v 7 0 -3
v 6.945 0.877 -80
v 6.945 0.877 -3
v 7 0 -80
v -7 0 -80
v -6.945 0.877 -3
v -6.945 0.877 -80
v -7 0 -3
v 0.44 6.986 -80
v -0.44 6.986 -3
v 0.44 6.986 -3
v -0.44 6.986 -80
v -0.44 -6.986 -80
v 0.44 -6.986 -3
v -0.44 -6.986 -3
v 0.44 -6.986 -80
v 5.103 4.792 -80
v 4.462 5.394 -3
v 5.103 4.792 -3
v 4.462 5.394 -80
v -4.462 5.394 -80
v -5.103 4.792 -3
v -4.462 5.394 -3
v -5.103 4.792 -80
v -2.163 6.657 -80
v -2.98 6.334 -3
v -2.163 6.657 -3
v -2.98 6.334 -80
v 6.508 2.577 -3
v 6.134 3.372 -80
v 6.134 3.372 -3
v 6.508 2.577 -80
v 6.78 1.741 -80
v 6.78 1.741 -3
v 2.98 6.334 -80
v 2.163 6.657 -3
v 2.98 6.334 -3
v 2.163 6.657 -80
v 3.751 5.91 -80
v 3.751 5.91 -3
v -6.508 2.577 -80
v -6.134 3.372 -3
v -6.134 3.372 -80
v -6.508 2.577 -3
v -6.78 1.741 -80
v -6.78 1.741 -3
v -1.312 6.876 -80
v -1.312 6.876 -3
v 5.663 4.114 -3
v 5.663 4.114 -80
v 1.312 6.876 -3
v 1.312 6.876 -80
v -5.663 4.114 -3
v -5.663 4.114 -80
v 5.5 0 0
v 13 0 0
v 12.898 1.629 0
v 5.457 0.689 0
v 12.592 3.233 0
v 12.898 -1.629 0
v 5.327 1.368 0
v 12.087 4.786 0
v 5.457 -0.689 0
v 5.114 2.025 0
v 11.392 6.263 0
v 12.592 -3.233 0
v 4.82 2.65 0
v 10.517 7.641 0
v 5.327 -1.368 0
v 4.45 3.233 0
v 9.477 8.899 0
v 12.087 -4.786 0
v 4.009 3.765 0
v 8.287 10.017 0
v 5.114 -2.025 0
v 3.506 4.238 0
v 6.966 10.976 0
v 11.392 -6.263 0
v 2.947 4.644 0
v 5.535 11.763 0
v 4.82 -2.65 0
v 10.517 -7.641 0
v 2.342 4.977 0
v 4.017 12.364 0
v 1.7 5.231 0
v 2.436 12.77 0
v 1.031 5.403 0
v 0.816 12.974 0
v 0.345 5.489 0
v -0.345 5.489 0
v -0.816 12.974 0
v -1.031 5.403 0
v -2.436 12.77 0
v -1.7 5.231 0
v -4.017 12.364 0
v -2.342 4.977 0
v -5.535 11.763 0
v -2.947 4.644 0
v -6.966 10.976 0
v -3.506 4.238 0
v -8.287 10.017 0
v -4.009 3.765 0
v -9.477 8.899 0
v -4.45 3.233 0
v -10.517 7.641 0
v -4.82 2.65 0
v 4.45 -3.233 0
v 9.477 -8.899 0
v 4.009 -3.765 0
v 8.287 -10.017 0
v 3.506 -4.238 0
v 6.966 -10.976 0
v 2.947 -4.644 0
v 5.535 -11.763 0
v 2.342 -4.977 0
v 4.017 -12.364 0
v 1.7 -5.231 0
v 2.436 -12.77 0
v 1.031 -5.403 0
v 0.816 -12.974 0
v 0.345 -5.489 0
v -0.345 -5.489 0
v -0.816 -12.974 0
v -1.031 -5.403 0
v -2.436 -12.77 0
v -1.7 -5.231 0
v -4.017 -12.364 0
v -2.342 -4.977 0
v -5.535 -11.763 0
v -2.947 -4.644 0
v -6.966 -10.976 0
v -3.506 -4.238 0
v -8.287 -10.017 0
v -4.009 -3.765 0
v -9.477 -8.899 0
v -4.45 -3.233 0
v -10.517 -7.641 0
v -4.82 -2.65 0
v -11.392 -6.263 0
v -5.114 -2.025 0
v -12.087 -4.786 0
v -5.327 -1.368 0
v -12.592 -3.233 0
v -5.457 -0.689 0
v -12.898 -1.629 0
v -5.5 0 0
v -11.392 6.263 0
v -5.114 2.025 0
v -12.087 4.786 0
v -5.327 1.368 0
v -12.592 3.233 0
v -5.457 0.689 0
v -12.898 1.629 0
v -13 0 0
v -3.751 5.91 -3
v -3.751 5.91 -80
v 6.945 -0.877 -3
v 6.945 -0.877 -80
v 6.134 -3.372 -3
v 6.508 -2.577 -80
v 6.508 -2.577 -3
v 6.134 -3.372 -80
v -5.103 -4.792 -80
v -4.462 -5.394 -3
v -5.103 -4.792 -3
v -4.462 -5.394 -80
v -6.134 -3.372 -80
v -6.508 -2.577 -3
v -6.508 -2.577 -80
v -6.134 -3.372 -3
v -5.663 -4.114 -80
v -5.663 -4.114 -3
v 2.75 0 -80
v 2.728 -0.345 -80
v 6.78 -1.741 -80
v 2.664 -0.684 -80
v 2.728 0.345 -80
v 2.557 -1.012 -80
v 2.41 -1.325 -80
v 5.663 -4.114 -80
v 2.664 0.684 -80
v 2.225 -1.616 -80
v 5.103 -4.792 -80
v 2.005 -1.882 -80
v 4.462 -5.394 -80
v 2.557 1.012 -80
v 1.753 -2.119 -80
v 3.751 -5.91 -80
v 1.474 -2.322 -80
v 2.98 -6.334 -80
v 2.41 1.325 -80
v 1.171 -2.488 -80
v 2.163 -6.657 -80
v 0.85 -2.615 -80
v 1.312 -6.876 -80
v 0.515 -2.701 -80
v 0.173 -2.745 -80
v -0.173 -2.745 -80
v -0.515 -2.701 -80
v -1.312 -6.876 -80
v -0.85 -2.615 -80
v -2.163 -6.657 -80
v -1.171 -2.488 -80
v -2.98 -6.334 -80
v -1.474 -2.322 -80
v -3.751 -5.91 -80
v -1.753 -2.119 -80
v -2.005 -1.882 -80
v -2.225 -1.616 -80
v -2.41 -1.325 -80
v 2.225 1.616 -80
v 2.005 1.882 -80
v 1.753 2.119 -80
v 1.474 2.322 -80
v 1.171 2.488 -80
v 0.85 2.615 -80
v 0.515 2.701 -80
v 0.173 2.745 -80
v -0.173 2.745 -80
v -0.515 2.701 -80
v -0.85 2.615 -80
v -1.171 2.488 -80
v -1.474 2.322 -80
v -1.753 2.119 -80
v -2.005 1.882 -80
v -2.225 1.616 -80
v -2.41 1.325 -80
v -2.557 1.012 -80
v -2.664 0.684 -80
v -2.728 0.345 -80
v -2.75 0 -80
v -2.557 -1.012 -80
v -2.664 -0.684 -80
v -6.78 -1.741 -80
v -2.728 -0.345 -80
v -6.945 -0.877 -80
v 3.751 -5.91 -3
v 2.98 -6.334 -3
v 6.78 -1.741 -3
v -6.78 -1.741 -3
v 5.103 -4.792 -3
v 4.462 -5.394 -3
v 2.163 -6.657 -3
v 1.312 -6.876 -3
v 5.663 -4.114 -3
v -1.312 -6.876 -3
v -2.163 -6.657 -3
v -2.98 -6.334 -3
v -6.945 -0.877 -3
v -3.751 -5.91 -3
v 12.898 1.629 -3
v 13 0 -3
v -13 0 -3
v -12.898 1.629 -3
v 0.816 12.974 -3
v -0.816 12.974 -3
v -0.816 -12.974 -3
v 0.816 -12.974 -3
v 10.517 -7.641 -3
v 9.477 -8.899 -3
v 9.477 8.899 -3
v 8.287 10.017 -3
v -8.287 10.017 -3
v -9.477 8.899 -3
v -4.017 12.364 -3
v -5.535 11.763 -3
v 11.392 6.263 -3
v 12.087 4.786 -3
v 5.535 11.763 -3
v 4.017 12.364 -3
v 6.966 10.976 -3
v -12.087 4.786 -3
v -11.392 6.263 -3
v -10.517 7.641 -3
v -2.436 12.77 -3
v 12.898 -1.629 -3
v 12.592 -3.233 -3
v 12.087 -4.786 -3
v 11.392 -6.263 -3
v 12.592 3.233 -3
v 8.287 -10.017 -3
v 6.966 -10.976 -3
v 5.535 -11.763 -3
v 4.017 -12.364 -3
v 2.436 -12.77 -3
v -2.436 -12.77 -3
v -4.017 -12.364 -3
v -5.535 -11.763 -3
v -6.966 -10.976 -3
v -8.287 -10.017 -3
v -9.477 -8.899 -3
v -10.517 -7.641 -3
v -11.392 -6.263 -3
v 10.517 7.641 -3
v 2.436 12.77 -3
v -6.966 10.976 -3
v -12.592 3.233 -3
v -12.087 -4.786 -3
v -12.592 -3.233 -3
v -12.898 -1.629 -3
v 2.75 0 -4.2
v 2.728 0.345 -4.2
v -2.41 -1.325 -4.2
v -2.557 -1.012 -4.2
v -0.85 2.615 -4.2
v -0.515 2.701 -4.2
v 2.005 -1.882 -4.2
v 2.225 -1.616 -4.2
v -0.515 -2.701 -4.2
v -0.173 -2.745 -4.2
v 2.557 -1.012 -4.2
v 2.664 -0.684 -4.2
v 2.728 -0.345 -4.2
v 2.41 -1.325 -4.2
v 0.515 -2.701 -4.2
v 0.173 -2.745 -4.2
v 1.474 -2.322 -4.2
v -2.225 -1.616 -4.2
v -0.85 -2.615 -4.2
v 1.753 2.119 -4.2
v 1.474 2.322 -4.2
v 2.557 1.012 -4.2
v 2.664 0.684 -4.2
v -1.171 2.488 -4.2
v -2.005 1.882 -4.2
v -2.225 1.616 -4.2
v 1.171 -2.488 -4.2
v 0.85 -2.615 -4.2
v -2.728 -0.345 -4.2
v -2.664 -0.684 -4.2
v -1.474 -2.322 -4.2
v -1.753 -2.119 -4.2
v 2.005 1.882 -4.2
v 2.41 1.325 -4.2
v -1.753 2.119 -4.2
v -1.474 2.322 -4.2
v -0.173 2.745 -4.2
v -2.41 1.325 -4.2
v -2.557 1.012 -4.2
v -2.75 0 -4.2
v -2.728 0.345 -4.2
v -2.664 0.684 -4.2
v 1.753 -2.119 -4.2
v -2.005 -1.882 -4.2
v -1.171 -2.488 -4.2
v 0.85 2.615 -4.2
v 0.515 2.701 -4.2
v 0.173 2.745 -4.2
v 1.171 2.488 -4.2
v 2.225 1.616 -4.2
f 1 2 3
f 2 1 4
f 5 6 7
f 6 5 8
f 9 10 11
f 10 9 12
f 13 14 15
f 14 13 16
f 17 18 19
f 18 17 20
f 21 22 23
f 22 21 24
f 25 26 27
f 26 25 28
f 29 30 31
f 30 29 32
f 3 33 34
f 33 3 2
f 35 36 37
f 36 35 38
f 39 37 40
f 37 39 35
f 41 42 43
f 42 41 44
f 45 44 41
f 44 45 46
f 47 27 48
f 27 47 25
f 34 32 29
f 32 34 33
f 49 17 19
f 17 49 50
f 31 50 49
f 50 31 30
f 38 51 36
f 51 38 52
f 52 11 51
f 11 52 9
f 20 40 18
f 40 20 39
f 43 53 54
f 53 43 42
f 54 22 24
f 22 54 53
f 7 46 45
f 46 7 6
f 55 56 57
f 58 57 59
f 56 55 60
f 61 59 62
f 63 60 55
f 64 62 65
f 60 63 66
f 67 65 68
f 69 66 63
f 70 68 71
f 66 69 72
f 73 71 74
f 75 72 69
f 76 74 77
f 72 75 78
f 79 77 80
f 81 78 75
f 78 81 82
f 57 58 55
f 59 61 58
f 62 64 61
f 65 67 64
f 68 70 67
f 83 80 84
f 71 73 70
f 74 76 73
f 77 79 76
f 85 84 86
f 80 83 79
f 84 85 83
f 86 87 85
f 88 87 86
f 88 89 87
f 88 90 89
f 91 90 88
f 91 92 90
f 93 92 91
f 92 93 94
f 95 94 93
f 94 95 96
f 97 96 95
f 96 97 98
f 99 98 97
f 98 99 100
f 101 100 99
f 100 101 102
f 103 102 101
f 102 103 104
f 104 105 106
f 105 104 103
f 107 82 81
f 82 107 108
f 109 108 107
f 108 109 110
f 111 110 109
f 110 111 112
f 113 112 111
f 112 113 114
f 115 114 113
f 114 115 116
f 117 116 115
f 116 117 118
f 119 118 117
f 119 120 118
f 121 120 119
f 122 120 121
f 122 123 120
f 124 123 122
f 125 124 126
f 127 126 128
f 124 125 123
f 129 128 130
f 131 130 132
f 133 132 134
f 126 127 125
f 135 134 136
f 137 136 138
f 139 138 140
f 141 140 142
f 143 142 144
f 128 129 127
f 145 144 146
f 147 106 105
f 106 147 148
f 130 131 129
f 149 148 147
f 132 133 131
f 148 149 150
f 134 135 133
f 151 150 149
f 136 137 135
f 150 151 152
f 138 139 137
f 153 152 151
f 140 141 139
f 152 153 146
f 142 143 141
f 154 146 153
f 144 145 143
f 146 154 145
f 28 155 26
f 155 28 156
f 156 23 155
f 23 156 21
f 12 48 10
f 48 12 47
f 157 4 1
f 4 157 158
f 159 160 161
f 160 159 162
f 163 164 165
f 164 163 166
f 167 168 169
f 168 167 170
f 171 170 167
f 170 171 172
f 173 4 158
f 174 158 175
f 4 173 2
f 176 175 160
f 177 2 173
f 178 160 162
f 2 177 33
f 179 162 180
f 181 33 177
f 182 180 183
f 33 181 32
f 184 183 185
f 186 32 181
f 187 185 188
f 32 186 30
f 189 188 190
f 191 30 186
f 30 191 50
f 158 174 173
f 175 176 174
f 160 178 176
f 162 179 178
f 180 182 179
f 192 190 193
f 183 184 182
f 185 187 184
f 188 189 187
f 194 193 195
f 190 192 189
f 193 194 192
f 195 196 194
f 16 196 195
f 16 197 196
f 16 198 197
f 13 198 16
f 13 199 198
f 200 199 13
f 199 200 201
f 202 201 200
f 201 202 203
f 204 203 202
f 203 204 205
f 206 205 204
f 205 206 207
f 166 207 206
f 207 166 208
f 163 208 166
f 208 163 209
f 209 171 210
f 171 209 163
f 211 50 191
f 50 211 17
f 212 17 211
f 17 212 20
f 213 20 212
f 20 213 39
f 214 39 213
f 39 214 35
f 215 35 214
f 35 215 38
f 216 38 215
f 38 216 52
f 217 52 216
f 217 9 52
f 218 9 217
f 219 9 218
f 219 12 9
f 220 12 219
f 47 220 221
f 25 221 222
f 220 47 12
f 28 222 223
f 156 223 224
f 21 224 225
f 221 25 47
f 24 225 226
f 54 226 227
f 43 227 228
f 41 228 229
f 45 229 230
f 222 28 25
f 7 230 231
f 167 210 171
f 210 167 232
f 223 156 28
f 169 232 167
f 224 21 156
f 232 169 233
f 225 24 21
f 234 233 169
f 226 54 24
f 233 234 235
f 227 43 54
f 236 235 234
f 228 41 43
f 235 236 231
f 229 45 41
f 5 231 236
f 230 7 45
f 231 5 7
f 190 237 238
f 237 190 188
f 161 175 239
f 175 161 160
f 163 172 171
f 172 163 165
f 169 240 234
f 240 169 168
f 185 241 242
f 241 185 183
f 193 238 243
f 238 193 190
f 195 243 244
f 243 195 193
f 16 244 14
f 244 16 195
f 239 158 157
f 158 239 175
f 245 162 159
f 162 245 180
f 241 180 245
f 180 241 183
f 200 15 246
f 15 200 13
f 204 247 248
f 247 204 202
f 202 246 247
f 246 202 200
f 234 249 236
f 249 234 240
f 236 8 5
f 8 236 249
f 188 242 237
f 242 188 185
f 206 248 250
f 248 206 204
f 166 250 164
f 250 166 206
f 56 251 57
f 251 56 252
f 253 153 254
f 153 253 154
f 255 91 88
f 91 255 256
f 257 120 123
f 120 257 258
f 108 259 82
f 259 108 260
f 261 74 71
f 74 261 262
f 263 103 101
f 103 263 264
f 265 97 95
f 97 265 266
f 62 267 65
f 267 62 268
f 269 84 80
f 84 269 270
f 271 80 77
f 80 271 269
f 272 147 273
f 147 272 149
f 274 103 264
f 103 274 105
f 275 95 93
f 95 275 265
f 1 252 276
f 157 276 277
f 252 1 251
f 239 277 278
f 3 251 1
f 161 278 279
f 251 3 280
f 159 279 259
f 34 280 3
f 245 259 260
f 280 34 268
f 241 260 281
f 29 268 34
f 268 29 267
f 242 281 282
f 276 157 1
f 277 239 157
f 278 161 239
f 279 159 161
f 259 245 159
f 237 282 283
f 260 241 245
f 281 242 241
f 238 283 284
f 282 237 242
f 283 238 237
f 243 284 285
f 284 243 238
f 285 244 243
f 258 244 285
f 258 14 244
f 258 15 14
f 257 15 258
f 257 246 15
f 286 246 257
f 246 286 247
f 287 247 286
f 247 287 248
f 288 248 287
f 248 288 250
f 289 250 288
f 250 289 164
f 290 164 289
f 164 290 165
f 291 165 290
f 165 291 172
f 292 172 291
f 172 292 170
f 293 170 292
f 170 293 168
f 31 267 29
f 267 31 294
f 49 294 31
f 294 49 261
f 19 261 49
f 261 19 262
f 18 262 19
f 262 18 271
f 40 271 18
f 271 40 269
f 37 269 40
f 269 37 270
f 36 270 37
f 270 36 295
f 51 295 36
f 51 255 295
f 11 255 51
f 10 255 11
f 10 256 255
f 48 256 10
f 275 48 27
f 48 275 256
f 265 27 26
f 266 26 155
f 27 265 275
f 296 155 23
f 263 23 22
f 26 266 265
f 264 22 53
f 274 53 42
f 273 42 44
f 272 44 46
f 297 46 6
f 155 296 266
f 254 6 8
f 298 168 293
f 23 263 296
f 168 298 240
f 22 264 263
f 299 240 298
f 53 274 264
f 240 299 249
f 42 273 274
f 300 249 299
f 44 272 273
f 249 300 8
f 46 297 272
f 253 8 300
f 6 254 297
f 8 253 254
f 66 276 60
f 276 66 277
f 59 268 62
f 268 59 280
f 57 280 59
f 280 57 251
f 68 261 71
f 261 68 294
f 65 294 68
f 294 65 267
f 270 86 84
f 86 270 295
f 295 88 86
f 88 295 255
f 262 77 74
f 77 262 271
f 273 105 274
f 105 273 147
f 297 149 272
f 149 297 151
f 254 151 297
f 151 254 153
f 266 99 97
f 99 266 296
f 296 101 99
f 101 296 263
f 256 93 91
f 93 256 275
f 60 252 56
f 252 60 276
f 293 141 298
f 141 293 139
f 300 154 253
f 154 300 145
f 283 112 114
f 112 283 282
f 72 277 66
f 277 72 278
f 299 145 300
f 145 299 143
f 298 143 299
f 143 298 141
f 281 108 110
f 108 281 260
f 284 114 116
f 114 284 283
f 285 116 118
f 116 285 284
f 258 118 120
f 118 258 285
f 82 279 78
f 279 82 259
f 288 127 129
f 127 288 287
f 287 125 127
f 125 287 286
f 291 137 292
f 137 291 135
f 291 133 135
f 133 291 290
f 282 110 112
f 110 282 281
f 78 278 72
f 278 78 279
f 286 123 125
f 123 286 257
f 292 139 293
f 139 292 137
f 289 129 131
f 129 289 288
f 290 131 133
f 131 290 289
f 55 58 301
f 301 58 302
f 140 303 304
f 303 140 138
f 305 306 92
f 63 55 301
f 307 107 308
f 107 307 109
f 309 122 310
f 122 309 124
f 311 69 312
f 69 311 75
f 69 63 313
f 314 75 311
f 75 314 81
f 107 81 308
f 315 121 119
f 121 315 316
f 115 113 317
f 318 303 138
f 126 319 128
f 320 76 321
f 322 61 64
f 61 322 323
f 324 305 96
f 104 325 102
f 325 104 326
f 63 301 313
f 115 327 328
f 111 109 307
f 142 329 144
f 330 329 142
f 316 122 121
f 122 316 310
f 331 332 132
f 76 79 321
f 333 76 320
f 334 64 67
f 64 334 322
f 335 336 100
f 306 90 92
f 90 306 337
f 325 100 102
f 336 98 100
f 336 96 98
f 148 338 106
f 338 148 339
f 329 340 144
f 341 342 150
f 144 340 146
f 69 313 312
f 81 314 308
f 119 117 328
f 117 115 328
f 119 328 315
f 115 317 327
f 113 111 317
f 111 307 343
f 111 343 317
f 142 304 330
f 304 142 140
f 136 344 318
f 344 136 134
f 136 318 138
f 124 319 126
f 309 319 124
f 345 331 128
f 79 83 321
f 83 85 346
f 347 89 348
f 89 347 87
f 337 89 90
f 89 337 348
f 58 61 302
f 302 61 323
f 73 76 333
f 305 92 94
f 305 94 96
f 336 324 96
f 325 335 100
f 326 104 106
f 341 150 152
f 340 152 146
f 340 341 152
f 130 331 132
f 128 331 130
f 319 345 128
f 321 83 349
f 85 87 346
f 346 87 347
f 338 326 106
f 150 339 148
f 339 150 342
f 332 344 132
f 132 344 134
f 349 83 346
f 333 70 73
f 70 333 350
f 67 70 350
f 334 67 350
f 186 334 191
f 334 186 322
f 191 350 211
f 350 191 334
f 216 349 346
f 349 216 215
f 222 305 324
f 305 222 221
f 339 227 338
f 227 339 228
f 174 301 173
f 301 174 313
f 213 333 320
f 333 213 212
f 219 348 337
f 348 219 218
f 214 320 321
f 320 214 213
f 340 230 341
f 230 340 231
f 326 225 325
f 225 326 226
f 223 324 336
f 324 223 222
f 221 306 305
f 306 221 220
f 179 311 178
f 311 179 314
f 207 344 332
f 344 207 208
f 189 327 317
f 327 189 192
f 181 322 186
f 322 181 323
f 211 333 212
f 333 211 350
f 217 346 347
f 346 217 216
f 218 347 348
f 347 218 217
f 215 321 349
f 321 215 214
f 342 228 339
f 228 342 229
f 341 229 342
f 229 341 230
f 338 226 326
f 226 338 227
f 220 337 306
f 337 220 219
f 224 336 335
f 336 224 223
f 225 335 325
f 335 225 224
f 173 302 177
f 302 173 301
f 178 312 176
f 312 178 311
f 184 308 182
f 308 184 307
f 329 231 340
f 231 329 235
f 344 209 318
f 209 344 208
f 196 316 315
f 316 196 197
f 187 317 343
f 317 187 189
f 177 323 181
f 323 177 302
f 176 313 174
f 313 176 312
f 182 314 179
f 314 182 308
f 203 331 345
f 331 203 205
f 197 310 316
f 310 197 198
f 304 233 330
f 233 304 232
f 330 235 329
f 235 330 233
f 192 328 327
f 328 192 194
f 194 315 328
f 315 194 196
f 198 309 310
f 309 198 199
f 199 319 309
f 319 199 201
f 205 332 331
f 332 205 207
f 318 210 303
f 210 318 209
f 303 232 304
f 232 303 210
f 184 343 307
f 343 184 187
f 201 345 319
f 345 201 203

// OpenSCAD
$fn = 50;


difference() {
	union() {
		translate(v = [0, 0, -80.0000000000]) {
			cylinder(h = 80, r = 7.0000000000);
		}
		translate(v = [0, 0, -3.0000000000]) {
			cylinder(h = 3, r = 13.0000000000);
		}
	}
	union() {
		translate(v = [0, 0, 0]) {
			rotate(a = [0, 0, 0]) {
				difference() {
					union() {
						#translate(v = [0, 0, -80.0000000000]) {
							cylinder(h = 80, r = 2.2500000000);
						}
						#translate(v = [0, 0, -4.2000000000]) {
							cylinder(h = 4.2000000000, r = 7.0000000000, r1 = 2.7500000000, r2 = 5.5000000000);
						}
						#translate(v = [0, 0, -80.0000000000]) {
							cylinder(h = 80, r = 2.7500000000);
						}
						#translate(v = [0, 0, -80.0000000000]) {
							cylinder(h = 80, r = 2.2500000000);
						}
					}
					union();
				}
			}
		}
	}
}
